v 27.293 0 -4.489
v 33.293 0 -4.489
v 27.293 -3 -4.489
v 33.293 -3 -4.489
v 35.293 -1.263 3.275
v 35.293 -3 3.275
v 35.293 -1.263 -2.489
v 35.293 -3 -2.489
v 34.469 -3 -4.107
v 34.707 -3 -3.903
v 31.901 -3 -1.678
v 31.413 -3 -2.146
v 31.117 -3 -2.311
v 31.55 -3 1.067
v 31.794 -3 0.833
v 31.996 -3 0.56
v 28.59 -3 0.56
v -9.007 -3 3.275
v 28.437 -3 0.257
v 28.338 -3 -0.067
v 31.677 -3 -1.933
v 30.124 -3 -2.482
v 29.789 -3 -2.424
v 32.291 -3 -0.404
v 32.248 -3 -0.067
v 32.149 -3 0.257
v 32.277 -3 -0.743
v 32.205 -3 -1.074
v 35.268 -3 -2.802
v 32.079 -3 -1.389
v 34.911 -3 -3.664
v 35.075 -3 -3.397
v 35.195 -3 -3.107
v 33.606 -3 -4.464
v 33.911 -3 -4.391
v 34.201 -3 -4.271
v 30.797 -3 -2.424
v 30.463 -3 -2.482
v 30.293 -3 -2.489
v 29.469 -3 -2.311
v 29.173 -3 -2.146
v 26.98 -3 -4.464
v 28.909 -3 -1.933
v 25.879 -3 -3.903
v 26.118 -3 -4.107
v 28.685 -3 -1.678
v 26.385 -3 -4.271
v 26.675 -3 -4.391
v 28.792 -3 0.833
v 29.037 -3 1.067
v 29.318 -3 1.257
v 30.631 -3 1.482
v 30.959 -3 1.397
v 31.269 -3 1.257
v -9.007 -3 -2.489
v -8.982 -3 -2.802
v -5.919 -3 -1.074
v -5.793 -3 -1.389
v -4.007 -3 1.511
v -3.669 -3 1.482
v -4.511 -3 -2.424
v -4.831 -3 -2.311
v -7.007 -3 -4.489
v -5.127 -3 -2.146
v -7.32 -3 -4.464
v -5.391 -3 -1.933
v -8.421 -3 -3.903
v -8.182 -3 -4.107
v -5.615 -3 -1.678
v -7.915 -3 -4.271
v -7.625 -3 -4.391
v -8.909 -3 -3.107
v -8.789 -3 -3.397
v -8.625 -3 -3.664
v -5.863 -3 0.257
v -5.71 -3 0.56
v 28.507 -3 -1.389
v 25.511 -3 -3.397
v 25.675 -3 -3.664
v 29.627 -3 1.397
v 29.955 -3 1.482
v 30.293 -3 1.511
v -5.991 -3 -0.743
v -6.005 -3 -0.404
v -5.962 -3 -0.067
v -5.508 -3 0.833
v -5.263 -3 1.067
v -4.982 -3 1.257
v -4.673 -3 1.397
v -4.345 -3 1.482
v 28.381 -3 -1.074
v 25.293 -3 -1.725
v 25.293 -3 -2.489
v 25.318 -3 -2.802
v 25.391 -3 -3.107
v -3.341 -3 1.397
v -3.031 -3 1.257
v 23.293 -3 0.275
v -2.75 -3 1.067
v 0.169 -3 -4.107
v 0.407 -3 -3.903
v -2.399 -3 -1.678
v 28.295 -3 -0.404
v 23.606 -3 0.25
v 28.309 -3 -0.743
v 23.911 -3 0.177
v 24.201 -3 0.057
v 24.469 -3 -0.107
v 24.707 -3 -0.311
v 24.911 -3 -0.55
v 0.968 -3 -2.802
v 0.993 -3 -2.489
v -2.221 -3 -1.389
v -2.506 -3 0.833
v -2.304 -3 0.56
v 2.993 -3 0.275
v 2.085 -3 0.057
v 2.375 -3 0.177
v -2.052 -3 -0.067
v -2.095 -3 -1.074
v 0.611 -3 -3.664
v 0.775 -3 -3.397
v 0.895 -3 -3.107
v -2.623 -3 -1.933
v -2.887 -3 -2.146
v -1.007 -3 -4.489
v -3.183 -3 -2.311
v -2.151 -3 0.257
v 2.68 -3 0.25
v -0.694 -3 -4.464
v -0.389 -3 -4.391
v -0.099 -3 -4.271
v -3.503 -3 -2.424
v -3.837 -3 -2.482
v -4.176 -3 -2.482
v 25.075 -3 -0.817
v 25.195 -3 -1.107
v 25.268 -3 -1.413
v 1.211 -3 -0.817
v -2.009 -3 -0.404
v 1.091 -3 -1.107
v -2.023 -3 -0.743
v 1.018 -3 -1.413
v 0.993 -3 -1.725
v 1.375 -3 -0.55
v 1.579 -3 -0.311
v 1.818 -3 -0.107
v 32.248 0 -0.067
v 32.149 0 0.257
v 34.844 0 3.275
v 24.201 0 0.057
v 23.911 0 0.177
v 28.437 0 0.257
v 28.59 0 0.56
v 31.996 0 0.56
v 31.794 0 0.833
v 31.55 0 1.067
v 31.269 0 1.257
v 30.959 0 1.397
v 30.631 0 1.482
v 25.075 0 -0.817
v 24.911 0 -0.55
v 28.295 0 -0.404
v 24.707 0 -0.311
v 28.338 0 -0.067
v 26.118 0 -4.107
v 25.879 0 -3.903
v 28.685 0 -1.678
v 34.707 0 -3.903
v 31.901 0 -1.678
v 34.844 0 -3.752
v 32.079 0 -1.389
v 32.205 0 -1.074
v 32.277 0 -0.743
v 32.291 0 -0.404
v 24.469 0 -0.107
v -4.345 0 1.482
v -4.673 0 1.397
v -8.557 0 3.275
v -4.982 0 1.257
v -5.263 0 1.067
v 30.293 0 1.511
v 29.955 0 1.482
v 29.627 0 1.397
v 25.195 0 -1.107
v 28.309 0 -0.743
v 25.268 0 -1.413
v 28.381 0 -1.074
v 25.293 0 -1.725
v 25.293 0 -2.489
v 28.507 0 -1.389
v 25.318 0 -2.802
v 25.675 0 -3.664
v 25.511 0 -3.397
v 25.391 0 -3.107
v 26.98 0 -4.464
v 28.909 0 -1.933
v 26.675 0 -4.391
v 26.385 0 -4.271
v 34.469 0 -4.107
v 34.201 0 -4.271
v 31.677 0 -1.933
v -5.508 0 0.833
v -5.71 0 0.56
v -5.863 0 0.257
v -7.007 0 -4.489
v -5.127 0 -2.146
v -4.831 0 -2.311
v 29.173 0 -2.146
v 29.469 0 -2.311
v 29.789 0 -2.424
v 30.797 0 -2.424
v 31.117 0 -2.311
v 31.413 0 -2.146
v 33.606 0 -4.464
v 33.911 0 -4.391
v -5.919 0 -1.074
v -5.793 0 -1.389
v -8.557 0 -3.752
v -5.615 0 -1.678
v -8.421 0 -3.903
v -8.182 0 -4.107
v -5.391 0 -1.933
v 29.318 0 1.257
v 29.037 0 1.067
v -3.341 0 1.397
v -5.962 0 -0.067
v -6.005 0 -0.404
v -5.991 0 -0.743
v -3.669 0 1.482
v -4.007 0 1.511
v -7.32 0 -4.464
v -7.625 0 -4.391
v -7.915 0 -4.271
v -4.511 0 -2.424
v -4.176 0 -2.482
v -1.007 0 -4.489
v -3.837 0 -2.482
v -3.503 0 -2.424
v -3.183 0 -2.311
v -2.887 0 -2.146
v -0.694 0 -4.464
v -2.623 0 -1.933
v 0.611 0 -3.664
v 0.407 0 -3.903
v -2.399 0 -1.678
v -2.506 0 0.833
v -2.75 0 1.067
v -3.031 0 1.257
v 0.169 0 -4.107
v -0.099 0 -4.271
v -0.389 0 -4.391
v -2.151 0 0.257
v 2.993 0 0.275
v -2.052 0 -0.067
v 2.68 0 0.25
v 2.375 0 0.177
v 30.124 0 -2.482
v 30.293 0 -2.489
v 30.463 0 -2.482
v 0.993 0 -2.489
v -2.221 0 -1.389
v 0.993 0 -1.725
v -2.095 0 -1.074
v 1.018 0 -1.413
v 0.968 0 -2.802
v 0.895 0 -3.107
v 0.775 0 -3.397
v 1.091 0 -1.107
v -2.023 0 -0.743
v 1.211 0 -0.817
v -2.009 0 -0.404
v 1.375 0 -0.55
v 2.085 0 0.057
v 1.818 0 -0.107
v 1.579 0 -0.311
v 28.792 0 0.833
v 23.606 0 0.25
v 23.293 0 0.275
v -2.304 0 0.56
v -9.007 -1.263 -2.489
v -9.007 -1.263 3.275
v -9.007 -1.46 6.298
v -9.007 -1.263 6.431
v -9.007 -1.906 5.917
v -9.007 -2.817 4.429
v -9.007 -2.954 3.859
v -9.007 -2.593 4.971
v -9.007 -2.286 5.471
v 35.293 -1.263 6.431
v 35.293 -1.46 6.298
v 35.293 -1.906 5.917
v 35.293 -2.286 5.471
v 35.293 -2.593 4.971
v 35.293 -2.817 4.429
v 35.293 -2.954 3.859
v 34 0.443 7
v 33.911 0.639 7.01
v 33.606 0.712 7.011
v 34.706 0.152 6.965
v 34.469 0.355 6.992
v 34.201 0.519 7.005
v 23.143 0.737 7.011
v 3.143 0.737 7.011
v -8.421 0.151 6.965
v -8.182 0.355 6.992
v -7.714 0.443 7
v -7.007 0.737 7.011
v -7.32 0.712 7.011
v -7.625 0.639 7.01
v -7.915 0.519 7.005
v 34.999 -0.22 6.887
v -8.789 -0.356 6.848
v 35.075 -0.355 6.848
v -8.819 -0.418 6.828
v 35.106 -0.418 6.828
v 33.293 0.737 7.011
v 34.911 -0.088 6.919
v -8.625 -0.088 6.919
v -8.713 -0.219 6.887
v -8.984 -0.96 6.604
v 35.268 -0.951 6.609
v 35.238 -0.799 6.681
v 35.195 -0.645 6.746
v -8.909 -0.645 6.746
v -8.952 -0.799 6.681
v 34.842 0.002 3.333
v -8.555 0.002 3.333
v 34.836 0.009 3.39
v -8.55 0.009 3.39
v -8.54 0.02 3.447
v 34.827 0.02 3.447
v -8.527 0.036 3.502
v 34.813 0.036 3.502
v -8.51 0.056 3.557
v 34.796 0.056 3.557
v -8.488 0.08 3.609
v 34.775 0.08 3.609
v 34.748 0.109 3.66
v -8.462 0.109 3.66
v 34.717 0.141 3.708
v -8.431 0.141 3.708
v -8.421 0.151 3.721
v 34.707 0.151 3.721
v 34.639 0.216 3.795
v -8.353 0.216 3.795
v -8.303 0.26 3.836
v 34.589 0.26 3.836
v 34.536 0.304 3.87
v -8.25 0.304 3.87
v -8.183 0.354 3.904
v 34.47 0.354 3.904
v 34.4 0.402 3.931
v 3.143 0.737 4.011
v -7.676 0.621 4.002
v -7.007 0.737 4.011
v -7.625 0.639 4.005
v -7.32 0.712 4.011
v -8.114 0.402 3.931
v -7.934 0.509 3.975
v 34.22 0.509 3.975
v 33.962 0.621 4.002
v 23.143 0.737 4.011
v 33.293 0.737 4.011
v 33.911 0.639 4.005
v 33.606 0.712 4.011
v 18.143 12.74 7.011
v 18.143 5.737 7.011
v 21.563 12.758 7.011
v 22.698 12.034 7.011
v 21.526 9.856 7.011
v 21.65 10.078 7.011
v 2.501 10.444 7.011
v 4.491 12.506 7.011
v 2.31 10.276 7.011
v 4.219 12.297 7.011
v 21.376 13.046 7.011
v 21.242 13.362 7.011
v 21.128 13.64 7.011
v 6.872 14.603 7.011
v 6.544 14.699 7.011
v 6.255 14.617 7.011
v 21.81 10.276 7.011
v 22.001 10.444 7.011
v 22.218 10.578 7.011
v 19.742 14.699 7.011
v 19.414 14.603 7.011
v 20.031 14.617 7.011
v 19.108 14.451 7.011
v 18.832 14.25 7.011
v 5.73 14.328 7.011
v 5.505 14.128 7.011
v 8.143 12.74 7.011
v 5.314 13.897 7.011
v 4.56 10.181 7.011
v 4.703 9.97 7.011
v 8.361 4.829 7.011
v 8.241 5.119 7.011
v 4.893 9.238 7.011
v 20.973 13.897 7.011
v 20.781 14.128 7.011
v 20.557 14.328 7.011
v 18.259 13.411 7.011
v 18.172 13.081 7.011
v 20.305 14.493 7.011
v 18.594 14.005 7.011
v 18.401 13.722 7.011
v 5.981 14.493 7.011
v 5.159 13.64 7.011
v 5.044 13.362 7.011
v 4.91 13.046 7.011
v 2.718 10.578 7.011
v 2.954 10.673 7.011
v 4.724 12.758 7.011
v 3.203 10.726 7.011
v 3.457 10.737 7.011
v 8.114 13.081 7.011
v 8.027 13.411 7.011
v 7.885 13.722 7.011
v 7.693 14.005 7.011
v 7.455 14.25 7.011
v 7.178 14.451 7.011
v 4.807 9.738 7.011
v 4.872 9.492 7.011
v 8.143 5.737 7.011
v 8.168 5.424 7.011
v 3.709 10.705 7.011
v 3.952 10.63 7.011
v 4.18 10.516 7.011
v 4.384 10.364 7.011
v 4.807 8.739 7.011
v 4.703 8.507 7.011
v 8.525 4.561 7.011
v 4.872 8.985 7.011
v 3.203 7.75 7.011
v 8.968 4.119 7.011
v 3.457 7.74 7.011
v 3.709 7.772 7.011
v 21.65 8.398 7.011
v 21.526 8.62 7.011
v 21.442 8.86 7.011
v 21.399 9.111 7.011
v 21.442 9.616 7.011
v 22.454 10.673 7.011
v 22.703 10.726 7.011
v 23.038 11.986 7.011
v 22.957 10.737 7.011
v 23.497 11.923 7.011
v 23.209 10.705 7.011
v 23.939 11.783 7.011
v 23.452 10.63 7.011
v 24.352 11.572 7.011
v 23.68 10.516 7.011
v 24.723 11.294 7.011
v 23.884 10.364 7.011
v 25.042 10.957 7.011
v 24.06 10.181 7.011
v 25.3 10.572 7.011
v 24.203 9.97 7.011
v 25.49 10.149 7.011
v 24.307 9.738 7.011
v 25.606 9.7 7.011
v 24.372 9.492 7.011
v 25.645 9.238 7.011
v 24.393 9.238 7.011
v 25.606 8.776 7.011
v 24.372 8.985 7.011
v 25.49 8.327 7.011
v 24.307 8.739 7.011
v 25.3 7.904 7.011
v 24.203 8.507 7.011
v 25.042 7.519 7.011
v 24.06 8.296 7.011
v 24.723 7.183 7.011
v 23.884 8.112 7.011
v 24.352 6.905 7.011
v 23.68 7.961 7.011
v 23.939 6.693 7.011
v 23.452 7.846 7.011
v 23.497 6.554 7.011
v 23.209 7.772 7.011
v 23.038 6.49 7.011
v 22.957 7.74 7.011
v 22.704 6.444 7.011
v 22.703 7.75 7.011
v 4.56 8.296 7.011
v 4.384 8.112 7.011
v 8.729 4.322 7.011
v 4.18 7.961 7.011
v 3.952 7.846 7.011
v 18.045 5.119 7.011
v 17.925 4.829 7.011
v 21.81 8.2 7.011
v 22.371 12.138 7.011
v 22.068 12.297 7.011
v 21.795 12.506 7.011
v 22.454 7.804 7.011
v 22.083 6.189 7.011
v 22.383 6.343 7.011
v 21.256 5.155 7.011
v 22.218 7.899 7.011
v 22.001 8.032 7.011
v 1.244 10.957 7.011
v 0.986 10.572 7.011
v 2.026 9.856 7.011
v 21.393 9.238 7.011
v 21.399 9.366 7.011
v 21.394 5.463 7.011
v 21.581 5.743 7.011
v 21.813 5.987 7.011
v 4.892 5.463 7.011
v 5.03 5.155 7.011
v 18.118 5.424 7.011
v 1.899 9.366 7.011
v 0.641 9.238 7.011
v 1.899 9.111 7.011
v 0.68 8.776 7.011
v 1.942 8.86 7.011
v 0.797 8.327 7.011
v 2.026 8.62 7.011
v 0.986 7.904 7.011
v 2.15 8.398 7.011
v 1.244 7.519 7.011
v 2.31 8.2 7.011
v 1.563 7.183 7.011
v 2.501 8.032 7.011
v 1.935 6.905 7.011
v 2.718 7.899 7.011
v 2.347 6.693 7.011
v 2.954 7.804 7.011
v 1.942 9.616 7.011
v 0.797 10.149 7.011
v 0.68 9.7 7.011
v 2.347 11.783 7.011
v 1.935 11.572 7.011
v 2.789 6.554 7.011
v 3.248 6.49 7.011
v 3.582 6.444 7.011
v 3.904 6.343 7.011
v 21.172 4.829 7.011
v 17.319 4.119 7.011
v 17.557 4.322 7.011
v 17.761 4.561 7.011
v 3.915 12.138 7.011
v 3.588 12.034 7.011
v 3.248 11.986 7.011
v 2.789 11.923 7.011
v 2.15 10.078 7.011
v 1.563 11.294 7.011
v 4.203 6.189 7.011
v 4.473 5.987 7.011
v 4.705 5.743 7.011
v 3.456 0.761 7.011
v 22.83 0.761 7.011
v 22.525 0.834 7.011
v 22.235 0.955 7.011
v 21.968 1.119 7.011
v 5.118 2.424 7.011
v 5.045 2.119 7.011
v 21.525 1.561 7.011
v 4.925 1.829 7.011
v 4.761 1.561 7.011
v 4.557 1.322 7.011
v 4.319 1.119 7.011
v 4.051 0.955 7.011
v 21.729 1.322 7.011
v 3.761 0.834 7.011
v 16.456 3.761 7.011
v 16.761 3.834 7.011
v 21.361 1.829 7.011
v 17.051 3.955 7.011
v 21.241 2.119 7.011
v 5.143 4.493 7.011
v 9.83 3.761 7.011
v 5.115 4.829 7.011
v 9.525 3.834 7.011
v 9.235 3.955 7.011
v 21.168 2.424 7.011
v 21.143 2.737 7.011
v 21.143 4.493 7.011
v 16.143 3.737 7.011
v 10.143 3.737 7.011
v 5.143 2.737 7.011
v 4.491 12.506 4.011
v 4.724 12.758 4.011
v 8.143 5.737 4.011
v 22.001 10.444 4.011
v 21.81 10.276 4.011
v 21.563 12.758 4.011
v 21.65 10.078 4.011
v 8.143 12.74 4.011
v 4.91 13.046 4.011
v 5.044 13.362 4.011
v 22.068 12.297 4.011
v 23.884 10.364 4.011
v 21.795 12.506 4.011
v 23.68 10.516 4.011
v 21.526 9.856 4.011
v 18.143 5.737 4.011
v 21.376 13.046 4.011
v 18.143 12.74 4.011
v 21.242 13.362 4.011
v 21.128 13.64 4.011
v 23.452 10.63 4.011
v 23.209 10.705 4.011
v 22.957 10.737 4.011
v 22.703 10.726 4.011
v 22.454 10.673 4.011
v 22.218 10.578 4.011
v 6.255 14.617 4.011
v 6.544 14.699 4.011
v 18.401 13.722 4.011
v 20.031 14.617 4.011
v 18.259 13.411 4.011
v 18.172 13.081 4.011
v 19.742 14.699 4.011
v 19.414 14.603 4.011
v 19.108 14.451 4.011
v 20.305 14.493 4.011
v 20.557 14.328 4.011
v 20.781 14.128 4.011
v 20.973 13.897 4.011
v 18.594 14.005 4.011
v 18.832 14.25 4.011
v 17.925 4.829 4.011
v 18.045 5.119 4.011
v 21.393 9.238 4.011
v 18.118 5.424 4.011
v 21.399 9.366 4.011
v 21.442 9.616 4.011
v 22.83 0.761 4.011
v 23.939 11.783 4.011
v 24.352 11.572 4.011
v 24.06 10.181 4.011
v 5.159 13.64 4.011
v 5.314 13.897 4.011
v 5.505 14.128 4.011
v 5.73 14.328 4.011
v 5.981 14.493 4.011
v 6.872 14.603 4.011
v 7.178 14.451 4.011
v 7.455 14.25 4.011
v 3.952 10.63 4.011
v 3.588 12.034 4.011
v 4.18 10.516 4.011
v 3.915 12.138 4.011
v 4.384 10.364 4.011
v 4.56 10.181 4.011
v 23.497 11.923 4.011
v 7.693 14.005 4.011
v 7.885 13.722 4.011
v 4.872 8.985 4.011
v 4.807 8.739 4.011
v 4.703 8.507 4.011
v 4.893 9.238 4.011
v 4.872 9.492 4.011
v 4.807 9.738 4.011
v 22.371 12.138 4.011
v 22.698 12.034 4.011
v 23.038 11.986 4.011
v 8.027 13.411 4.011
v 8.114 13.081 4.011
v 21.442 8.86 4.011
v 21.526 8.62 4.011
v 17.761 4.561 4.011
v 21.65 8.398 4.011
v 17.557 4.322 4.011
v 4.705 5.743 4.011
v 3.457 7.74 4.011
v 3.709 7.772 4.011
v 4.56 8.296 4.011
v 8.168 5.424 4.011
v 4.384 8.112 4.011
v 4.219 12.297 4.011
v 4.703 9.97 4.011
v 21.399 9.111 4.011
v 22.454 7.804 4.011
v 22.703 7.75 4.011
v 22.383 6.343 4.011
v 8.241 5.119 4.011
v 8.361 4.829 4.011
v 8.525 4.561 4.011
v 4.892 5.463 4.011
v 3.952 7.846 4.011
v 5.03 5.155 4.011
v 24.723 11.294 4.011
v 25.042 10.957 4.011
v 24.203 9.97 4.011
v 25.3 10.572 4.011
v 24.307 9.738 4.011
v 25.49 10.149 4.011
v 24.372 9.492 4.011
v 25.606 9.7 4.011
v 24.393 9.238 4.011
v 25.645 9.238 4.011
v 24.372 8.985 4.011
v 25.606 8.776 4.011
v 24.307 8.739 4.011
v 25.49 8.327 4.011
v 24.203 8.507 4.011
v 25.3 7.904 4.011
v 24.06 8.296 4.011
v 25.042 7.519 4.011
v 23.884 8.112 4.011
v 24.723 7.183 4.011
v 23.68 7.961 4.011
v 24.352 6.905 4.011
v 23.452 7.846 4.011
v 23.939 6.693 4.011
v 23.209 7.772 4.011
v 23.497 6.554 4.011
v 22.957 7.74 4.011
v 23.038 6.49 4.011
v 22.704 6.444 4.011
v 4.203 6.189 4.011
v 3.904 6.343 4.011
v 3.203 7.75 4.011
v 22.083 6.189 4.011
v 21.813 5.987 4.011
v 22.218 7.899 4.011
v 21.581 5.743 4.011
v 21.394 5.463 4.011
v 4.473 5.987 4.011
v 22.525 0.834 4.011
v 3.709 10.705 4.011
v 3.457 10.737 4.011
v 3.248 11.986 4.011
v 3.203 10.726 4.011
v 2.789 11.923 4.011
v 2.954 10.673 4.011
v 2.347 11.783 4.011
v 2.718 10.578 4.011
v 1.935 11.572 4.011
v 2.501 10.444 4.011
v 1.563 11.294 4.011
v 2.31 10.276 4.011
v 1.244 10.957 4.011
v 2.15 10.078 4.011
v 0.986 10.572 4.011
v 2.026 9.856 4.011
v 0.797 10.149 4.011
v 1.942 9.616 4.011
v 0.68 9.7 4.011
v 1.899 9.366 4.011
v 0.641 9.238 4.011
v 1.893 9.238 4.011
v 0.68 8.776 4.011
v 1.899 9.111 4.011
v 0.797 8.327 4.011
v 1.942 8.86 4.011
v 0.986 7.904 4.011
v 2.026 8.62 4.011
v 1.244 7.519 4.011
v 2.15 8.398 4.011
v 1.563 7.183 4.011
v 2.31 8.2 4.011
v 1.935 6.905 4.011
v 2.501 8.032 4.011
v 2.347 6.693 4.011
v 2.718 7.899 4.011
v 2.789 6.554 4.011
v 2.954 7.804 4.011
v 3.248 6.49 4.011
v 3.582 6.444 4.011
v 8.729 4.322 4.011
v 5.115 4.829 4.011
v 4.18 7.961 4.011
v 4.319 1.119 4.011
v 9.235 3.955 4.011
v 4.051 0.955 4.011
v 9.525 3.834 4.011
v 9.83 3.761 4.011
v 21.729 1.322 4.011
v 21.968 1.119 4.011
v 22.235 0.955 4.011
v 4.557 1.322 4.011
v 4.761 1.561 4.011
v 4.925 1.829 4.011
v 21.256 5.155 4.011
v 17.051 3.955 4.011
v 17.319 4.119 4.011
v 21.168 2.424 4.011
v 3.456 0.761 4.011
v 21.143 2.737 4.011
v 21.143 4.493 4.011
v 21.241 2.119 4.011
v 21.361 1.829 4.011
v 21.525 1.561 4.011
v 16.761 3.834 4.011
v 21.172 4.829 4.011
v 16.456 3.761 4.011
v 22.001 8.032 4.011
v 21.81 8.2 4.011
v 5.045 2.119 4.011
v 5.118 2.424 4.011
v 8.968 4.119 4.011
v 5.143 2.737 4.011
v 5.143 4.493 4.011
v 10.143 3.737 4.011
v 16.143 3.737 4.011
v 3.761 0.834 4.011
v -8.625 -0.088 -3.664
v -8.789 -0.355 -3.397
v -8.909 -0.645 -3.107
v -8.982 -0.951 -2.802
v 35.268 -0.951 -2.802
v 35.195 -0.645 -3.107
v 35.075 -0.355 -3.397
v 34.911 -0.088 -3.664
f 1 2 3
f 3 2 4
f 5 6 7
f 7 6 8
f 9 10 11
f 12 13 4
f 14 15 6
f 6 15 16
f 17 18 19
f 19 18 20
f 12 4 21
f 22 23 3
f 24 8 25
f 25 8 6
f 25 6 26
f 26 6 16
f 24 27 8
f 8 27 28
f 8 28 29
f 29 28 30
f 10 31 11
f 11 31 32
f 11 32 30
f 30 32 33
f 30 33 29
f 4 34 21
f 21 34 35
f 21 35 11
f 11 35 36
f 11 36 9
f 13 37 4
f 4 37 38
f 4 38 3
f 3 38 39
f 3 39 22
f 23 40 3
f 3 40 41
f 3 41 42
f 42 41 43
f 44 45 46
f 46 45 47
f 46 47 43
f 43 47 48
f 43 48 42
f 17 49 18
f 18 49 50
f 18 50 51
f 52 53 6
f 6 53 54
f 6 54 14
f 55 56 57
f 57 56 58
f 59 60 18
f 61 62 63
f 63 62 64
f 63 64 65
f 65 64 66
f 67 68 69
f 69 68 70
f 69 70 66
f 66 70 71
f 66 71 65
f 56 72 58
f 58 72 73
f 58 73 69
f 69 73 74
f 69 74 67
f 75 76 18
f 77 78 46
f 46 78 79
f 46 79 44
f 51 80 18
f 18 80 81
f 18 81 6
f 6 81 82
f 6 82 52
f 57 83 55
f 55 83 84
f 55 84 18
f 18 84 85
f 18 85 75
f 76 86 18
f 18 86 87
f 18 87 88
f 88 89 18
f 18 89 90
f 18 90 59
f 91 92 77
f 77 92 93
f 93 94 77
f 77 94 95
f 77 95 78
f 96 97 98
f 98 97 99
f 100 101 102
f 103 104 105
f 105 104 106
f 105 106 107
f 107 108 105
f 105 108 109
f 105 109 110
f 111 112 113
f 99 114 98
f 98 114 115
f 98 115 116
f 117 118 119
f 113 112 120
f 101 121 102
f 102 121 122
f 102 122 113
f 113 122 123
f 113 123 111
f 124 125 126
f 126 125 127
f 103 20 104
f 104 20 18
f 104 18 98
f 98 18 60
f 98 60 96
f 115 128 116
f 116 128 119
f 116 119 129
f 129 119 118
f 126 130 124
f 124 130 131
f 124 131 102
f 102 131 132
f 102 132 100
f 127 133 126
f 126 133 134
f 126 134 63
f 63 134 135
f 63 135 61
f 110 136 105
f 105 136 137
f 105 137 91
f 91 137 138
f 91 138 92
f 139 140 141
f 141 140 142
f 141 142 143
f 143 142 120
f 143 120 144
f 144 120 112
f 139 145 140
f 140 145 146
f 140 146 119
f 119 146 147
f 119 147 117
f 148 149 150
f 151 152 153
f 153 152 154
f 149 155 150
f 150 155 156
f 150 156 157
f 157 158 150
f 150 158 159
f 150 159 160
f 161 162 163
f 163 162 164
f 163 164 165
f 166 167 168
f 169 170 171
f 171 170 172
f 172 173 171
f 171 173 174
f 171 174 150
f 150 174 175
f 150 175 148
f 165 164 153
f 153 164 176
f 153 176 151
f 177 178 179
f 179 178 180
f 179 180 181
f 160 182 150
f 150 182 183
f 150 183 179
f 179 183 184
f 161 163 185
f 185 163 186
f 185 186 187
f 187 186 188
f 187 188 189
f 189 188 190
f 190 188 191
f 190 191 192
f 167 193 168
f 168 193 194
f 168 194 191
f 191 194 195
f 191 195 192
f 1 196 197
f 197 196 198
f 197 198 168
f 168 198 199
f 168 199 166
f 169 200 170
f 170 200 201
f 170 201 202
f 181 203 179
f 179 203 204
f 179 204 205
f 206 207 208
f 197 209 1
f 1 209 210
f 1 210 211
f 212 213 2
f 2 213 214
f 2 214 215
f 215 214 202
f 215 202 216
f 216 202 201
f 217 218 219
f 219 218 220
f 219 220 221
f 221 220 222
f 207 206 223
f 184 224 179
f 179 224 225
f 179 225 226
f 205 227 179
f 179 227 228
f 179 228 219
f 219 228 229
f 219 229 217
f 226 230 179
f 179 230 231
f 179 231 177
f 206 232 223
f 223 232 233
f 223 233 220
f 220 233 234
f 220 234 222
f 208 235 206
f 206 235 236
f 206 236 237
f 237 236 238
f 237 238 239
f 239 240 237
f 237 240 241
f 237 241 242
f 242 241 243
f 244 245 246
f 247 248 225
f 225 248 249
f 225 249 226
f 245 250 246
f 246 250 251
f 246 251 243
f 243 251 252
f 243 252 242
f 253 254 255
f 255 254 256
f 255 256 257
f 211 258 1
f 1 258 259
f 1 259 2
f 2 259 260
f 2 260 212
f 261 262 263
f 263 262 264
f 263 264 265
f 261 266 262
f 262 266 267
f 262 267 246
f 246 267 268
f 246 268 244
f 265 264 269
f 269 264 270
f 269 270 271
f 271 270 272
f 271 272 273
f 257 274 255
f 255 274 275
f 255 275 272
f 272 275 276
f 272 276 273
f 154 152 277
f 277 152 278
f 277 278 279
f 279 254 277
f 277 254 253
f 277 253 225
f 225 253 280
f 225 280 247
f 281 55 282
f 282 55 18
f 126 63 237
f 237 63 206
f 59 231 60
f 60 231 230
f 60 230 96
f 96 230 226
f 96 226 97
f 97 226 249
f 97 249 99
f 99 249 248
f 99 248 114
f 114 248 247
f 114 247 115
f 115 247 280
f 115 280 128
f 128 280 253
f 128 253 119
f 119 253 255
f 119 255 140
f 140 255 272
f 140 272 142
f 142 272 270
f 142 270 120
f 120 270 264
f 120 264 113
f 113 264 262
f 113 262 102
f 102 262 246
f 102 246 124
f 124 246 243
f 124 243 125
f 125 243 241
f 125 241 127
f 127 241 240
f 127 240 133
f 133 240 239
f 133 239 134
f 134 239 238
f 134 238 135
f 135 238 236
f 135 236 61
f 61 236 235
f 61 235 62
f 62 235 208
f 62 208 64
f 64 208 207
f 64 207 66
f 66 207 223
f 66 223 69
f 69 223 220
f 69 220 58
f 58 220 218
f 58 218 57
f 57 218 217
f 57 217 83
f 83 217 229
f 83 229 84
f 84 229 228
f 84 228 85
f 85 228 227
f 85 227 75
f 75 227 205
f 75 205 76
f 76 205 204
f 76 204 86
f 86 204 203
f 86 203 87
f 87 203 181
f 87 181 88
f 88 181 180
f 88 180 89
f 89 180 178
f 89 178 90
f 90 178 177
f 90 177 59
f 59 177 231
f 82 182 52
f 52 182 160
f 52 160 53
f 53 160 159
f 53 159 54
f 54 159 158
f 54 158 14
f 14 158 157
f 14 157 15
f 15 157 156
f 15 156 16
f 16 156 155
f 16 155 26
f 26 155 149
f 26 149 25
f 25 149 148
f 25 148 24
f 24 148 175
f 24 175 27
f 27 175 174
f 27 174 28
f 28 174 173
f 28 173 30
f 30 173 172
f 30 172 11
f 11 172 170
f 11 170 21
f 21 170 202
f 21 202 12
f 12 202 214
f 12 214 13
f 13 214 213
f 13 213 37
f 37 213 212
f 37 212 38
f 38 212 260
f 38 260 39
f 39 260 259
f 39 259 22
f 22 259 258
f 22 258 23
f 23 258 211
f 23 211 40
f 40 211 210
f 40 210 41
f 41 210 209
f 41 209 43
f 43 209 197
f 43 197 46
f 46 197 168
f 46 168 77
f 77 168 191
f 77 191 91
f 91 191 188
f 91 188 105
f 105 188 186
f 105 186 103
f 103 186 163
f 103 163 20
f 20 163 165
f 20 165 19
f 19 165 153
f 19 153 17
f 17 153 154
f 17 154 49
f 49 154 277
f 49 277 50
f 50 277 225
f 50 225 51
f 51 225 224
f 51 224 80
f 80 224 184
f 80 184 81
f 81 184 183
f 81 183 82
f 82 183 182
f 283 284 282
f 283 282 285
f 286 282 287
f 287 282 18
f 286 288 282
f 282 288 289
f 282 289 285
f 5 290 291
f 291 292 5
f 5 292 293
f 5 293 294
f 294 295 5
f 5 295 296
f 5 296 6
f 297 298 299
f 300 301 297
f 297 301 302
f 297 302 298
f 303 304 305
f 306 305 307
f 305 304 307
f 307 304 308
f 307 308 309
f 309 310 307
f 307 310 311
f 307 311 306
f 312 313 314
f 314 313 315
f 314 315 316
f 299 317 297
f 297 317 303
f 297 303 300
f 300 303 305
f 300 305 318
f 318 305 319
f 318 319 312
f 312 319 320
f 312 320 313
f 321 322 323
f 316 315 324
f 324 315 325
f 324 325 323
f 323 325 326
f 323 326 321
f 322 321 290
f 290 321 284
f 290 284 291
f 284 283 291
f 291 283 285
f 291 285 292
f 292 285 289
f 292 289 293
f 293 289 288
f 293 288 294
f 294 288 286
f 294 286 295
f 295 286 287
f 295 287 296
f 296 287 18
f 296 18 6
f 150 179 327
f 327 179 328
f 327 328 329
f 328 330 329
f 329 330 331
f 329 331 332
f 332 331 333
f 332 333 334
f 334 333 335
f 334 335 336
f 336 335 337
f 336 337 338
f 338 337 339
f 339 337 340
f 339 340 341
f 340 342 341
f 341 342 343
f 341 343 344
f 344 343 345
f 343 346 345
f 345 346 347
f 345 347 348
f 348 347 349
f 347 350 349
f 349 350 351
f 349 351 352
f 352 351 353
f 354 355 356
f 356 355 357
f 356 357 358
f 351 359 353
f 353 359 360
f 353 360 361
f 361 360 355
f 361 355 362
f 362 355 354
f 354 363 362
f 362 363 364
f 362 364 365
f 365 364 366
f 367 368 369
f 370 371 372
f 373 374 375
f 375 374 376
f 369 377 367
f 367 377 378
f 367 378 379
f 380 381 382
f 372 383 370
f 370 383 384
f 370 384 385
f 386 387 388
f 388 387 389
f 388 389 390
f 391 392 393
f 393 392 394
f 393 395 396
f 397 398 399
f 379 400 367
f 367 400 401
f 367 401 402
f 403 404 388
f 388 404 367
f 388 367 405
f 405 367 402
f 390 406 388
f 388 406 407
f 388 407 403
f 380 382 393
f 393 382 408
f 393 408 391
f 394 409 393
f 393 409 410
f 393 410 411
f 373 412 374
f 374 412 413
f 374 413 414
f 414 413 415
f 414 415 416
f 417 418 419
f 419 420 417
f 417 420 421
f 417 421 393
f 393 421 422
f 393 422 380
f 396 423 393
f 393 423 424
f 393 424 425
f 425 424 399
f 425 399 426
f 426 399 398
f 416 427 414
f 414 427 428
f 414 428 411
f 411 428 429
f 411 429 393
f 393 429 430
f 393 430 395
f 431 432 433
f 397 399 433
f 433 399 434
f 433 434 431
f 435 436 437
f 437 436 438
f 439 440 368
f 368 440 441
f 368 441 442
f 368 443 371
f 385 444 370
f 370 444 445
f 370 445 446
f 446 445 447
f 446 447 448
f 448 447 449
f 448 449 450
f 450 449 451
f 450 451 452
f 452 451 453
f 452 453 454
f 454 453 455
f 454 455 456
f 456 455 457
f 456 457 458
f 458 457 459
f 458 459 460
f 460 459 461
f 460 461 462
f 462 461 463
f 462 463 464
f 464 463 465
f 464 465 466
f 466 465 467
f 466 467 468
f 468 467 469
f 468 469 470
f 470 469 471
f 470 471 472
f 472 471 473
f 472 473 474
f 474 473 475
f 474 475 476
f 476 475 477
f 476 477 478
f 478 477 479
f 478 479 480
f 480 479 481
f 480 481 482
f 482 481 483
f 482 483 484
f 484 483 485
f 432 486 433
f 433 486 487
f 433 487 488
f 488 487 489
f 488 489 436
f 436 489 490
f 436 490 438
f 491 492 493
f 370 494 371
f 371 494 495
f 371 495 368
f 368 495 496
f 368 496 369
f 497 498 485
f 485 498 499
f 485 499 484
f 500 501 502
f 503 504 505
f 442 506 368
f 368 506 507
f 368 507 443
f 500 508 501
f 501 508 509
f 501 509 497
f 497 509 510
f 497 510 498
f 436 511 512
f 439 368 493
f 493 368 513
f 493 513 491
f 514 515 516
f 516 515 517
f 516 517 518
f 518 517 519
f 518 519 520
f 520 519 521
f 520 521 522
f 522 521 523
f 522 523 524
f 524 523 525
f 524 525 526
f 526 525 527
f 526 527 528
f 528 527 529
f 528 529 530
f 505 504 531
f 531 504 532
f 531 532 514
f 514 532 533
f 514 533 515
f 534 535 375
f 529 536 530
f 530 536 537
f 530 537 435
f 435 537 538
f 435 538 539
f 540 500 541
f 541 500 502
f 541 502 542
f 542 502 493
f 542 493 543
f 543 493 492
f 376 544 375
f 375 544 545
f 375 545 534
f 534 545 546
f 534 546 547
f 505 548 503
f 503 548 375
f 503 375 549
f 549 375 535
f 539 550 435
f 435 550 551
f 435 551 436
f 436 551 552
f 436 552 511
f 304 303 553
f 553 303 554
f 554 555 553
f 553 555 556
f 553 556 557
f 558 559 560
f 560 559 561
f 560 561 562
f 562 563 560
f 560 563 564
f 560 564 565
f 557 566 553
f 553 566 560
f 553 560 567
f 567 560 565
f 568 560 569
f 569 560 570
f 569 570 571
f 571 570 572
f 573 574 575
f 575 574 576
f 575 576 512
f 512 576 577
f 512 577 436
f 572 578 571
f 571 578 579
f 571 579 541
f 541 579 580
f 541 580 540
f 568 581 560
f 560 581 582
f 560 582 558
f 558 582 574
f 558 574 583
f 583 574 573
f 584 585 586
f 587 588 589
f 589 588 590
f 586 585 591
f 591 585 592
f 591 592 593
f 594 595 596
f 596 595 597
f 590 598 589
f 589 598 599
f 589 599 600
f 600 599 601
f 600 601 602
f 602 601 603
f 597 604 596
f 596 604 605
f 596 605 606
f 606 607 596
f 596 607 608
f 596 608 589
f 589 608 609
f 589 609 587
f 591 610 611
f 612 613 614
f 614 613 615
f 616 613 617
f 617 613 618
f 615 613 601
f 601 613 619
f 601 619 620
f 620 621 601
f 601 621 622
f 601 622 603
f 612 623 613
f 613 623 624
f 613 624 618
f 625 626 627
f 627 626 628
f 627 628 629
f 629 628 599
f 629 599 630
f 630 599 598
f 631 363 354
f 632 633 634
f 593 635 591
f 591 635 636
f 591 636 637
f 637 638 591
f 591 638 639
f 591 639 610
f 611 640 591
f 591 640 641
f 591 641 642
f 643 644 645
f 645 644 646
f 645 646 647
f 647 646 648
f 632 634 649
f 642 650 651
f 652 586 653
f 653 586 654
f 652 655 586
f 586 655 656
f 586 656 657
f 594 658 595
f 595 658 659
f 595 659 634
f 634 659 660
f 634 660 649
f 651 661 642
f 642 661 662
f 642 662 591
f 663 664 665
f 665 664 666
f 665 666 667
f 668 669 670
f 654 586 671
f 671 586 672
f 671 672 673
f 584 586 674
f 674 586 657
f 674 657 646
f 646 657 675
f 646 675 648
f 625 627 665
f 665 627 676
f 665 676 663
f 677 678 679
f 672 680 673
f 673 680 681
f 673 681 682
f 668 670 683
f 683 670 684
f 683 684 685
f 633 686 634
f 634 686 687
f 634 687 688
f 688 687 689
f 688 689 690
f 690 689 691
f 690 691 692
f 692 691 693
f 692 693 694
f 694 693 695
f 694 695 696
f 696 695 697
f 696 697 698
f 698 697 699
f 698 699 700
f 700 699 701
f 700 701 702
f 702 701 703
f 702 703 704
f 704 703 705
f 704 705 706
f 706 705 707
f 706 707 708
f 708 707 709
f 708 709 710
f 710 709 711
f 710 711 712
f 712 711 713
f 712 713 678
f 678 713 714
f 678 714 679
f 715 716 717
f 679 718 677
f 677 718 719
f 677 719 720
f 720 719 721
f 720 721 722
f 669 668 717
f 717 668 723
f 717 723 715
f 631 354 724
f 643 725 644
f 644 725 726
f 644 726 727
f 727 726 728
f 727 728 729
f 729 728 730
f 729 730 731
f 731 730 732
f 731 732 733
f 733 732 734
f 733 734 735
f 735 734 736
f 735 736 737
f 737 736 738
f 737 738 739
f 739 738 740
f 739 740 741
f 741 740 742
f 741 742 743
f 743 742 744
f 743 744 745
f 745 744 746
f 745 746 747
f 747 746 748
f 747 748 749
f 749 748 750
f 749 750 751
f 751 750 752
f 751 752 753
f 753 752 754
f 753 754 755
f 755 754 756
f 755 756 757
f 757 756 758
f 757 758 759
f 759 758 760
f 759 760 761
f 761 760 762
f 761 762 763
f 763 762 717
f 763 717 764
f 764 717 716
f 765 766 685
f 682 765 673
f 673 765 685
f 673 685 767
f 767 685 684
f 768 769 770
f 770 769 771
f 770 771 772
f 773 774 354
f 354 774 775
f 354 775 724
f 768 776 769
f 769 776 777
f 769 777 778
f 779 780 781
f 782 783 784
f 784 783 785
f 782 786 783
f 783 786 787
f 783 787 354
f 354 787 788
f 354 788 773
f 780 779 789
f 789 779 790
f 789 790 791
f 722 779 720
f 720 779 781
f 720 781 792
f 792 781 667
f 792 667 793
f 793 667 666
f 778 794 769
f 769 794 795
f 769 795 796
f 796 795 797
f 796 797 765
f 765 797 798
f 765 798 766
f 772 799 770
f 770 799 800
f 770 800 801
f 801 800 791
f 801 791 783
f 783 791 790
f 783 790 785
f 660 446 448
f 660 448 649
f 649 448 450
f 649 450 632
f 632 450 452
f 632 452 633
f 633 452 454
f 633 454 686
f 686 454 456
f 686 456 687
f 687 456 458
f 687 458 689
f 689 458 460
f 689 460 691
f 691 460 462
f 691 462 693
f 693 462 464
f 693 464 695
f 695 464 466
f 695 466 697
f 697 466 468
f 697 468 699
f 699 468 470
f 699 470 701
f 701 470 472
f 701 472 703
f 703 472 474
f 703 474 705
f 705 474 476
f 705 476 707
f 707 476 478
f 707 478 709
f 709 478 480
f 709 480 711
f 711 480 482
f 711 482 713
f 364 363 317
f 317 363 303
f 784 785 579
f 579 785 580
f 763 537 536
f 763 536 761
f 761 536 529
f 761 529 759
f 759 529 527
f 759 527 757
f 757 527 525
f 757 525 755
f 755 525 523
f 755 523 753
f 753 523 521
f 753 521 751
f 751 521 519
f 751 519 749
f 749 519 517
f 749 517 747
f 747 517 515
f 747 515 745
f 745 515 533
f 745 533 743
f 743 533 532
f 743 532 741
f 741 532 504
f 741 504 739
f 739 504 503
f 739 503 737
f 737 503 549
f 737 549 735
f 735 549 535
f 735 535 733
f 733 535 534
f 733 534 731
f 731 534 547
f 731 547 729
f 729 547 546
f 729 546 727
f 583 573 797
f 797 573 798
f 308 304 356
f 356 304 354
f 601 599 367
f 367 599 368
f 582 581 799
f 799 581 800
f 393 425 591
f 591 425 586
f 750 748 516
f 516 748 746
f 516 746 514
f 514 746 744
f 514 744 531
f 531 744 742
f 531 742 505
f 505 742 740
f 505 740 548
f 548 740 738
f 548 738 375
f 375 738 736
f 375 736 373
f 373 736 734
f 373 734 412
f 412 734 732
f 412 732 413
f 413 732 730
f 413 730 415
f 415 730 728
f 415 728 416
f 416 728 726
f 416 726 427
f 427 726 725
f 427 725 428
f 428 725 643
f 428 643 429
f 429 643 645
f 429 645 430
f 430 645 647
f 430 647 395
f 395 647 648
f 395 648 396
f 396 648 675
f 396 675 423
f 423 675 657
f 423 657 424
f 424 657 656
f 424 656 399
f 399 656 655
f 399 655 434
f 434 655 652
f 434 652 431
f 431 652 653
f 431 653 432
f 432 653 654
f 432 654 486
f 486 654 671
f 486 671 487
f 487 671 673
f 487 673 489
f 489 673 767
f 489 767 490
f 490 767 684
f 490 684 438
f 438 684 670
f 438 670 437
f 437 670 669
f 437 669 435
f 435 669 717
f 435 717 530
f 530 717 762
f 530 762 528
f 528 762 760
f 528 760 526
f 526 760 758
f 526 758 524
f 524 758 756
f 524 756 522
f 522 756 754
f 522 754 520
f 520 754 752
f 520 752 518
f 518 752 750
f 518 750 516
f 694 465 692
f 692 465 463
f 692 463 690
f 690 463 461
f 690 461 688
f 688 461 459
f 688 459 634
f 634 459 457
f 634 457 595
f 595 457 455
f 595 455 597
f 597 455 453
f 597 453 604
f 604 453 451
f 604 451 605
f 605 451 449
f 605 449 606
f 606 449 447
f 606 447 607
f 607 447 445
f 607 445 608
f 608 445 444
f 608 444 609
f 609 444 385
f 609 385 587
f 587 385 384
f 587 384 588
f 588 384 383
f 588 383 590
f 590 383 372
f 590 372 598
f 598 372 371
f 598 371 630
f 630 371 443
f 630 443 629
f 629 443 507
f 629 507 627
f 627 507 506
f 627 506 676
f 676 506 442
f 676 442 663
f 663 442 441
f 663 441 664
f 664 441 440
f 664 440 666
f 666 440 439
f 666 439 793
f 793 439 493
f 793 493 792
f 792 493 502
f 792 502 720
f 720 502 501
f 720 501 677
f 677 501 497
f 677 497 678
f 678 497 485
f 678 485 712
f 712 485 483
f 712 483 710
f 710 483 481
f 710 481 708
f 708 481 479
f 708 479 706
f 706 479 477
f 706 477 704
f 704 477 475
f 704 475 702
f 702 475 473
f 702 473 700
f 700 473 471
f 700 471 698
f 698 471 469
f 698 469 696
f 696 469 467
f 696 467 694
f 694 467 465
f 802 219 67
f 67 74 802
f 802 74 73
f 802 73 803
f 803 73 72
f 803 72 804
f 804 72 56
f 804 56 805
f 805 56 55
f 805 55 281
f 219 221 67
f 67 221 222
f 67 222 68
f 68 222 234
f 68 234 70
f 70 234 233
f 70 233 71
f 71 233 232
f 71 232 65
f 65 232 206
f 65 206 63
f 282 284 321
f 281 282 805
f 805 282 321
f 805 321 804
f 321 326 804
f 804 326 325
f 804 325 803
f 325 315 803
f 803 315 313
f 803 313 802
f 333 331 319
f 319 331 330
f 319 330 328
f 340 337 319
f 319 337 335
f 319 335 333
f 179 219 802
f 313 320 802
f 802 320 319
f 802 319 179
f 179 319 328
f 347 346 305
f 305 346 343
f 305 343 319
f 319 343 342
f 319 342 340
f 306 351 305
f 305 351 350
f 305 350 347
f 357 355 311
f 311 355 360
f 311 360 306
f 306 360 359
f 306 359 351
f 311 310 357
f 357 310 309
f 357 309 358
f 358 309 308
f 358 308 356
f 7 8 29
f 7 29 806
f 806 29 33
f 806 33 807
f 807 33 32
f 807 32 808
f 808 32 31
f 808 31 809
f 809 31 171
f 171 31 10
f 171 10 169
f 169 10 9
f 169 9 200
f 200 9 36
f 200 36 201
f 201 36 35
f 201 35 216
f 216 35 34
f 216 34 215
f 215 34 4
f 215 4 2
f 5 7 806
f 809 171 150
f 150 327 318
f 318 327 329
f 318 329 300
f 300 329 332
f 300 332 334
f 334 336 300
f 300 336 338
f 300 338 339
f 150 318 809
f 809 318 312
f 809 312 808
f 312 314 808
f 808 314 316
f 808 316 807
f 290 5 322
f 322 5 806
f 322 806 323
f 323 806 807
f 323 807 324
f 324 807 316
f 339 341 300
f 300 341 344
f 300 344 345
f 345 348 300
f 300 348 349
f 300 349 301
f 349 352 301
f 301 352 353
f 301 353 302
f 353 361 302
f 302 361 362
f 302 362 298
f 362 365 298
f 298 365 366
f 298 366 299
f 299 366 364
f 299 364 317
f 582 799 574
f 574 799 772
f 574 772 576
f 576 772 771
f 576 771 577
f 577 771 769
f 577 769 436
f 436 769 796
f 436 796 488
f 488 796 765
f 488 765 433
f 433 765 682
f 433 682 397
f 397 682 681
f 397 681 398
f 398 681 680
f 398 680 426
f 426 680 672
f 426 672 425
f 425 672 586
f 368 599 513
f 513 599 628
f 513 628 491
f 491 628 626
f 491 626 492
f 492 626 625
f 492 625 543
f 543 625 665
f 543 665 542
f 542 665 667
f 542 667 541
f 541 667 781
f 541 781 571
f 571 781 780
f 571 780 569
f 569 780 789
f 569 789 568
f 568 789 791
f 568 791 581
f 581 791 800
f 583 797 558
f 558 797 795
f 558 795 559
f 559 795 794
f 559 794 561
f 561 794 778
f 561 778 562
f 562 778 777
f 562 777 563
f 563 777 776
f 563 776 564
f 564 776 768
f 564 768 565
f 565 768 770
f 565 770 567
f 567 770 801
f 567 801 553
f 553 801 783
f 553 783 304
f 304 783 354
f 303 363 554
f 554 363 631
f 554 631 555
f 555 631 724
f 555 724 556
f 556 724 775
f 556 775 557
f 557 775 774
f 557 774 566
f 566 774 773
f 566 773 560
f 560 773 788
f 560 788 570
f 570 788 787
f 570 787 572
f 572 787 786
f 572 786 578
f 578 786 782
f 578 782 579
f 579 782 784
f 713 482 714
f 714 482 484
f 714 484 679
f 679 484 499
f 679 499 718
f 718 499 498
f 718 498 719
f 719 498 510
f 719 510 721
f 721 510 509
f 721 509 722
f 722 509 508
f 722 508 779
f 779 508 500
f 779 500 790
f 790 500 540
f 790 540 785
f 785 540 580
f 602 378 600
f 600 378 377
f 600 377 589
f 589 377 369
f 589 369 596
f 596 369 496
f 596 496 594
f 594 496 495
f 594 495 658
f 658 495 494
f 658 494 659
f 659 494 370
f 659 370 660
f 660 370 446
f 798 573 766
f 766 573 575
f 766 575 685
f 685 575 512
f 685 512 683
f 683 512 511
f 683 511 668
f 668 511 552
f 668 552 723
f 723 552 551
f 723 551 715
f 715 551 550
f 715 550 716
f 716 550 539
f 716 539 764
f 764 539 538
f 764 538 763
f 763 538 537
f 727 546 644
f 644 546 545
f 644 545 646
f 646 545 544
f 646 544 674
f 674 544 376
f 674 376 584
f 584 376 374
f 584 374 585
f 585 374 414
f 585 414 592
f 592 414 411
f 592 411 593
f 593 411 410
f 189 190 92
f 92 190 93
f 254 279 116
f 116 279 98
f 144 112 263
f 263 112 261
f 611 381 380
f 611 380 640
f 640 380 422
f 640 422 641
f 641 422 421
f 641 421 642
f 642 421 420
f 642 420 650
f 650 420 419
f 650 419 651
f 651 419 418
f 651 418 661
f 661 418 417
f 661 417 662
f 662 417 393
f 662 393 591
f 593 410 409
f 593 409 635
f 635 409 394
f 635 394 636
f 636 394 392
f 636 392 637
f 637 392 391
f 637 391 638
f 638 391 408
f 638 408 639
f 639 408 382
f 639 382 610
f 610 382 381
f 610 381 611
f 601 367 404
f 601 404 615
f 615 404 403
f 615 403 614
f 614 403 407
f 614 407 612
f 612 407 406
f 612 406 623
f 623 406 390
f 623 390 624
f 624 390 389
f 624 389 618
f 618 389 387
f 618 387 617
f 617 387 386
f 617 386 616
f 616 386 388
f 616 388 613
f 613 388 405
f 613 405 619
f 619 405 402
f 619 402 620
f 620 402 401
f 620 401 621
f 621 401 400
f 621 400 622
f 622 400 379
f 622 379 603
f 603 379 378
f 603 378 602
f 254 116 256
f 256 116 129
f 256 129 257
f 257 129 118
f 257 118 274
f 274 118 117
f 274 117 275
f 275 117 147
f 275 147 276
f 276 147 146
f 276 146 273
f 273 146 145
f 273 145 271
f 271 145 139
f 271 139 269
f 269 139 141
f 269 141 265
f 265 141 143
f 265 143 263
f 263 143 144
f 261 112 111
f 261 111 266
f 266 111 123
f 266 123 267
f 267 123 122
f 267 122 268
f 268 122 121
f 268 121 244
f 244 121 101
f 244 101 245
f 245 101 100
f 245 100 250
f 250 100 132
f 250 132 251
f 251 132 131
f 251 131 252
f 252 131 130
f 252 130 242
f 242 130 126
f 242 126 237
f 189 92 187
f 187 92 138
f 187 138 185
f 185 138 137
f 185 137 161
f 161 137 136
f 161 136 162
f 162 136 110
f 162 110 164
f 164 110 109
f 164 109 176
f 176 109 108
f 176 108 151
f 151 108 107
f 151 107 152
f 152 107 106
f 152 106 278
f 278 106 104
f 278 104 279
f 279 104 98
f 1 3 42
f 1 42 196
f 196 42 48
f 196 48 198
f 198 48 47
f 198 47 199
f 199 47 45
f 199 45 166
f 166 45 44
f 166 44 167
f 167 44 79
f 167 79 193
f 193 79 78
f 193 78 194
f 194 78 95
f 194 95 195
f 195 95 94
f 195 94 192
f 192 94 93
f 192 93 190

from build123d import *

# Parameters (mm, degrees)
ESBO_O23_W                     = 44.3
ESBO_O23_H                     = 11.5
ESBO_O23_R                     = 2
FLANGE_BASE2_DEPTH             = 3
ARESTA_FLANGE1_STRIP_W         = 13.4732
ARESTA_FLANGE1_STRIP_H         = 3
ARESTA_FLANGE1_STRIP_CUT_DEPTH = 44.3
ARESTA_FLANGE1_DEPTH           = 44.3
CORTE_EXTRUS_O1_REACH          = 41.939
CORTE_EXTRUS_O2_REACH          = 41.939
ESBO_O33_R                     = 1.5
ESBO_O33_W                     = 10
ESBO_O33_H                     = 11.0034
FILETE1_START                  = -5
FILETE1_DEPTH                  = 12.011168151
FILETE1_START_2                = 4.011168151
FILETE1_2_DEPTH                = 3
FILETE1_3_DEPTH                = 3
FILETE1_START_3                = -4
FILETE1_4_DEPTH                = 4.7366001
ESBO_O34_W                     = 24.3
ESBO_O34_H                     = 4.7634
CORTE_EXTRUS_O3_DEPTH          = 39.884804768
FILETE2_R                      = 2


with BuildPart() as part:
    # Flange-base2: sheet metal written as solids
    # Esboço23 → Flange-base2 (new body)
    with BuildSketch(Plane(origin=(0, 0, 0), x_dir=(1, 0, 0), z_dir=(0, 1, 0))):
        with Locations((13.143114832, -1.261168151)):
            Rectangle(ESBO_O23_W, ESBO_O23_H)
        with Locations(Location((-4.006885168, 0.488831849, 0), (0, 0, 270))):
            Circle(ESBO_O23_R, mode=Mode.SUBTRACT)
        with Locations(Location((30.293114832, 0.488831849, 0), (0, 0, 90))):
            Circle(ESBO_O23_R, mode=Mode.SUBTRACT)
    extrude(amount=-FLANGE_BASE2_DEPTH)

    # Aresta-Flange1: sheet metal written as solids
    # Aresta-Flange1 strip (on a plane across the edge) → Aresta-Flange1 strip cut (cut)
    with BuildSketch(Plane(origin=(-9.006885168, 0, 7.011168151), x_dir=(0, 0, -1), z_dir=(1, 0, 0))):
        with Locations((-3, -1.5)):
            Rectangle(ARESTA_FLANGE1_STRIP_W, ARESTA_FLANGE1_STRIP_H)
    extrude(amount=ARESTA_FLANGE1_STRIP_CUT_DEPTH, mode=Mode.SUBTRACT)

    # Aresta-Flange1 section (on a plane across the edge) → Aresta-Flange1 (add)
    with BuildSketch(Plane(origin=(-9.006885168, 0, 7.011168151), x_dir=(0, 0, -1), z_dir=(1, 0, 0))):
        with BuildLine():
            Line((0, 0.7366), (0, 14.74))
            Line((0, 14.74), (3, 14.74))
            Line((3, 14.74), (3, 0.7366))
            ThreePointArc((3, 0.7366), (3.215745145, 0.215745145), (3.7366, 0))
            Line((3.7366, 0), (3.7366, -3))
            ThreePointArc((3.7366, -3), (1.094424801, -1.905575199), (0, 0.7366))
        make_face()
    extrude(amount=ARESTA_FLANGE1_DEPTH)

    # Esboço31 → Corte-extrusão1 (cut, up to next)
    with BuildSketch(Plane.XY.offset(7.011168151), mode=Mode.PRIVATE) as corte_extrus_o1_sk1:
        with BuildLine():
            Line((5.143114832, 14.74), (5.143114832, 11.99))
            Line((5.143114832, 11.99), (3.393114832, 11.99))
            ThreePointArc((3.393114832, 11.99), (0.641414832, 9.2383), (3.393114832, 6.4866))
            Line((3.393114832, 6.4866), (5.143114832, 6.4866))
            Line((5.143114832, 6.4866), (5.143114832, 0.7366))
            Line((5.143114832, 0.7366), (-9.006885168, 0.7366))
            Line((-9.006885168, 0.7366), (-9.006885168, 14.74))
            Line((-9.006885168, 14.74), (5.143114832, 14.74))
        make_face()
    corte_extrus_o1_tool1 = extrude(corte_extrus_o1_sk1.sketch, amount=-CORTE_EXTRUS_O1_REACH, mode=Mode.PRIVATE) & part.part
    # Esboço31 → Corte-extrusão1 (cut, up to next)
    with BuildSketch(Plane.XY.offset(7.011168151), mode=Mode.PRIVATE) as corte_extrus_o1_sk2:
        with BuildLine():
            Line((21.143114832, 6.4866), (21.143114832, 0.7366))
            Line((21.143114832, 0.7366), (35.293114832, 0.7366))
            Line((35.293114832, 0.7366), (35.293114832, 14.74))
            Line((35.293114832, 14.74), (21.143114832, 14.74))
            Line((21.143114832, 14.74), (21.143114832, 11.99))
            Line((21.143114832, 11.99), (22.893114832, 11.99))
            ThreePointArc((22.893114832, 11.99), (25.644814832, 9.2383), (22.893114832, 6.4866))
            Line((22.893114832, 6.4866), (21.143114832, 6.4866))
        make_face()
    corte_extrus_o1_tool2 = extrude(corte_extrus_o1_sk2.sketch, amount=-CORTE_EXTRUS_O1_REACH, mode=Mode.PRIVATE) & part.part
    add(corte_extrus_o1_tool1.solids().sort_by_distance((-2.549902, 7.555498, 7.011168))[0], mode=Mode.SUBTRACT)
    add(corte_extrus_o1_tool2.solids().sort_by_distance((28.836132, 7.555498, 7.011168))[0], mode=Mode.SUBTRACT)

    # Esboço33 → Corte-extrusão2 (cut, up to next)
    with BuildSketch(Plane.XY.offset(7.011168151), mode=Mode.PRIVATE) as corte_extrus_o2_sk1:
        with Locations((3.393114832, 9.2383)):
            Circle(ESBO_O33_R)
    corte_extrus_o2_tool1 = extrude(corte_extrus_o2_sk1.sketch, amount=-CORTE_EXTRUS_O2_REACH, mode=Mode.PRIVATE) & part.part
    # Esboço33 → Corte-extrusão2 (cut, up to next)
    with BuildSketch(Plane.XY.offset(7.011168151), mode=Mode.PRIVATE) as corte_extrus_o2_sk2:
        with Locations(Location((22.893114832, 9.2383, 0), (0, 0, 180))):
            Circle(ESBO_O33_R)
    corte_extrus_o2_tool2 = extrude(corte_extrus_o2_sk2.sketch, amount=-CORTE_EXTRUS_O2_REACH, mode=Mode.PRIVATE) & part.part
    # Esboço33 → Corte-extrusão2 (cut, up to next)
    with BuildSketch(Plane.XY.offset(7.011168151), mode=Mode.PRIVATE) as corte_extrus_o2_sk3:
        with Locations((13.143114832, 9.2383)):
            Rectangle(ESBO_O33_W, ESBO_O33_H)
    corte_extrus_o2_tool3 = extrude(corte_extrus_o2_sk3.sketch, amount=-CORTE_EXTRUS_O2_REACH, mode=Mode.PRIVATE) & part.part
    add(corte_extrus_o2_tool1.solids().sort_by_distance((3.393115, 9.2383, 7.011168))[0], mode=Mode.SUBTRACT)
    add(corte_extrus_o2_tool2.solids().sort_by_distance((22.893115, 9.2383, 7.011168))[0], mode=Mode.SUBTRACT)
    add(corte_extrus_o2_tool3.solids().sort_by_distance((13.143115, 9.2383, 7.011168))[0], mode=Mode.SUBTRACT)

    # Filete1: read off the stored shape, not the designer's step
    # Filete1 outline → Filete1 (cut)
    with BuildSketch(Plane.XY.offset(FILETE1_START)):
        with BuildLine():
            Line((-9.006885168, 0.7366), (-9.006885168, -1.2634))
            ThreePointArc((-9.006885168, -1.2634), (-8.42109873, 0.150813562), (-7.006885168, 0.7366))
            Line((-7.006885168, 0.7366), (-9.006885168, 0.7366))
        make_face()
        with BuildLine():
            ThreePointArc((33.293114832, 0.7366), (34.707328395, 0.150813562), (35.293114832, -1.2634))
            Line((35.293114832, -1.2634), (35.293114832, 0.7366))
            Line((35.293114832, 0.7366), (33.293114832, 0.7366))
        make_face()
    extrude(amount=FILETE1_DEPTH, mode=Mode.SUBTRACT)

    # Filete1 2 outline → Filete1 2 (add)
    with BuildSketch(Plane.XY.offset(FILETE1_START_2)):
        with BuildLine():
            ThreePointArc((5.143114832, 2.7366), (4.557328394, 1.322386438), (3.143114832, 0.7366))
            Line((3.143114832, 0.7366), (5.143114832, 0.7366))
            Line((5.143114832, 0.7366), (5.143114832, 2.7366))
        make_face()
        with BuildLine():
            Line((21.143114832, 0.7366), (23.143114832, 0.7366))
            ThreePointArc((23.143114832, 0.7366), (21.72890127, 1.322386438), (21.143114832, 2.7366))
            Line((21.143114832, 2.7366), (21.143114832, 0.7366))
        make_face()
        with BuildLine():
            Line((8.143114832, 3.7366), (10.143114832, 3.7366))
            ThreePointArc((10.143114832, 3.7366), (8.72890127, 4.322386438), (8.143114832, 5.7366))
            Line((8.143114832, 5.7366), (8.143114832, 3.7366))
        make_face()
        with BuildLine():
            ThreePointArc((18.143114832, 5.7366), (17.557328394, 4.322386437), (16.143114832, 3.7366))
            Line((16.143114832, 3.7366), (18.143114832, 3.7366))
            Line((18.143114832, 3.7366), (18.143114832, 5.7366))
        make_face()
    extrude(amount=FILETE1_2_DEPTH)

    # Filete1 3 outline → Filete1 3 (add)
    with BuildSketch(Plane.XY.offset(FILETE1_START_2)):
        with BuildLine():
            ThreePointArc((22.893114832, 11.99), (22.96552716, 11.989047052), (23.037889334, 11.986188868))
            ThreePointArc((23.037889334, 11.986188868), (21.69217531, 12.606910766), (21.143114832, 13.983418849))
            Line((21.143114832, 13.983418849), (21.143114832, 11.99))
            Line((21.143114832, 11.99), (22.893114832, 11.99))
        make_face()
        with BuildLine():
            ThreePointArc((21.143114832, 4.493181151), (21.69217531, 5.869689234), (23.037889334, 6.490411131))
            ThreePointArc((23.037889334, 6.490411131), (22.96552716, 6.487552948), (22.893114832, 6.4866))
            Line((22.893114832, 6.4866), (21.143114832, 6.4866))
            Line((21.143114832, 6.4866), (21.143114832, 4.493181151))
        make_face()
        with BuildLine():
            ThreePointArc((5.143114832, 13.983418849), (4.594054355, 12.606910766), (3.248340331, 11.986188869))
            ThreePointArc((3.248340331, 11.986188869), (3.320702504, 11.989047052), (3.393114832, 11.99))
            Line((3.393114832, 11.99), (5.143114832, 11.99))
            Line((5.143114832, 11.99), (5.143114832, 13.983418849))
        make_face()
        with BuildLine():
            ThreePointArc((3.248340331, 6.490411131), (4.594054355, 5.869689234), (5.143114832, 4.493181151))
            Line((5.143114832, 4.493181151), (5.143114832, 6.4866))
            Line((5.143114832, 6.4866), (3.393114832, 6.4866))
            ThreePointArc((3.393114832, 6.4866), (3.320702504, 6.487552948), (3.248340331, 6.490411131))
        make_face()
    extrude(amount=FILETE1_3_DEPTH)

    # Filete1 4 outline → Filete1 4 (cut)
    with BuildSketch(Plane(origin=(0, 0, 0), x_dir=(1, 0, 0), z_dir=(0, 1, 0)).offset(FILETE1_START_3)):
        with BuildLine():
            Line((35.293114832, 4.488831849), (33.293114832, 4.488831849))
            ThreePointArc((33.293114832, 4.488831849), (34.707328395, 3.903045412), (35.293114832, 2.488831849))
            Line((35.293114832, 2.488831849), (35.293114832, 4.488831849))
        make_face()
        with BuildLine():
            ThreePointArc((-9.006885168, 2.488831849), (-8.421098731, 3.903045412), (-7.006885168, 4.488831849))
            Line((-7.006885168, 4.488831849), (-9.006885168, 4.488831849))
            Line((-9.006885168, 4.488831849), (-9.006885168, 2.488831849))
        make_face()
    extrude(amount=FILETE1_4_DEPTH, mode=Mode.SUBTRACT)

    # Esboço34 → Corte-extrusão3 (cut, through all)
    with BuildSketch(Plane(origin=(0, 0, 0), x_dir=(1, 0, 0), z_dir=(0, 1, 0))):
        with Locations((13.143114832, 2.107131849)):
            Rectangle(ESBO_O34_W, ESBO_O34_H)
    extrude(amount=-CORTE_EXTRUS_O3_DEPTH, mode=Mode.SUBTRACT)

    # Filete2
    # the kernel refuses this fillet: 2 mm, written as the material it adds along each edge
    with BuildSketch(Plane(origin=(0.993114832, 0, 0.274568151), x_dir=(0, 0, -1), z_dir=(0, -1, 0))) as filete2_piece_1:
        with BuildLine():
            CenterArc((FILETE2_R, FILETE2_R), FILETE2_R, 180, 90)
            Line((0, FILETE2_R), (0, 0))
            Line((0, 0), (FILETE2_R, 0))
        make_face()
    extrude(amount=3)
    with BuildSketch(Plane(origin=(25.293114832, 0, 0.274568151), x_dir=(0, 0, -1), z_dir=(0, -1, 0))) as filete2_piece_2:
        with BuildLine():
            CenterArc((FILETE2_R, -FILETE2_R), FILETE2_R, 90, 90)
            Line((0, -FILETE2_R), (0, 0))
            Line((0, 0), (FILETE2_R, 0))
        make_face()
    extrude(amount=3)
    # the kernel refuses this fillet: 2 mm, written as the material it takes off along each edge
    with BuildSketch(Plane(origin=(5.143114832, 14.74, 11.515742565), x_dir=(1, 0, 0), z_dir=(0, 0, -1))) as filete2_2_piece_1:
        with BuildLine():
            CenterArc((1.801829766, 2), FILETE2_R, 198.110746947, 71.889253053)
            Line((-0.099085117, 1.378290576), (-0.289176606, 1.316119634))
            ThreePointArc((-0.289176606, 1.316119634), (-0.2, 0.756581151), (-0.2, 0))
            Line((-0.2, 0), (0, -0.2))
            Line((0, -0.2), (1.801829766, -0.2))
            Line((1.801829766, -0.2), (1.801829766, 0))
        make_face()
    extrude(amount=12.009148828, mode=Mode.SUBTRACT)
    with BuildSketch(Plane(origin=(21.143114832, 14.74, 11.515742565), x_dir=(0.07170480855584176, -0.9974258972124044, 0), z_dir=(0, 0, -1))) as filete2_2_piece_2:
        with BuildLine():
            CenterArc((1.865651936, 1.940601288), FILETE2_R, 184.111911668, 71.889253032)
            Line((-0.129199858, 1.797191671), (-0.328685038, 1.782850709))
            Line((-0.328685038, 1.782850709), (-0.199485179, -0.014340962))
            Line((-0.199485179, -0.014340962), (0.014340962, -0.199485179))
            ThreePointArc((0.014340962, -0.199485179), (0.768974595, -0.145234673), (1.333467159, -0.194060129))
            Line((1.333467159, -0.194060129), (1.381847593, 0))
        make_face()
    extrude(amount=12.009148828, mode=Mode.SUBTRACT)
    with BuildSketch(Plane(origin=(8.143114832, 14.74, 12.011168151), x_dir=(0, -1, 0), z_dir=(0, 0, -1)), Plane(origin=(18.143114832, 14.74, 12.011168151), x_dir=(1, 0, 0), z_dir=(0, 0, -1)), Plane(origin=(25.293114832, 5, -4.488831849), x_dir=(1, 0, 0), z_dir=(0, -1, 0))) as filete2_2_piece_3:
        with BuildLine():
            CenterArc((FILETE2_R, FILETE2_R), FILETE2_R, 180, 90)
            Line((0, FILETE2_R), (0, 0))
            Line((0, 0), (FILETE2_R, 0))
        make_face()
    extrude(amount=13, mode=Mode.SUBTRACT)
    with BuildSketch(Plane(origin=(0.993114832, 5, -4.488831849), x_dir=(-1, 0, 0), z_dir=(0, -1, 0))) as filete2_2_piece_4:
        with BuildLine():
            CenterArc((FILETE2_R, -FILETE2_R), FILETE2_R, 90, 90)
            Line((0, -FILETE2_R), (0, 0))
            Line((0, 0), (FILETE2_R, 0))
        make_face()
    extrude(amount=13, mode=Mode.SUBTRACT)


solid = part.part
